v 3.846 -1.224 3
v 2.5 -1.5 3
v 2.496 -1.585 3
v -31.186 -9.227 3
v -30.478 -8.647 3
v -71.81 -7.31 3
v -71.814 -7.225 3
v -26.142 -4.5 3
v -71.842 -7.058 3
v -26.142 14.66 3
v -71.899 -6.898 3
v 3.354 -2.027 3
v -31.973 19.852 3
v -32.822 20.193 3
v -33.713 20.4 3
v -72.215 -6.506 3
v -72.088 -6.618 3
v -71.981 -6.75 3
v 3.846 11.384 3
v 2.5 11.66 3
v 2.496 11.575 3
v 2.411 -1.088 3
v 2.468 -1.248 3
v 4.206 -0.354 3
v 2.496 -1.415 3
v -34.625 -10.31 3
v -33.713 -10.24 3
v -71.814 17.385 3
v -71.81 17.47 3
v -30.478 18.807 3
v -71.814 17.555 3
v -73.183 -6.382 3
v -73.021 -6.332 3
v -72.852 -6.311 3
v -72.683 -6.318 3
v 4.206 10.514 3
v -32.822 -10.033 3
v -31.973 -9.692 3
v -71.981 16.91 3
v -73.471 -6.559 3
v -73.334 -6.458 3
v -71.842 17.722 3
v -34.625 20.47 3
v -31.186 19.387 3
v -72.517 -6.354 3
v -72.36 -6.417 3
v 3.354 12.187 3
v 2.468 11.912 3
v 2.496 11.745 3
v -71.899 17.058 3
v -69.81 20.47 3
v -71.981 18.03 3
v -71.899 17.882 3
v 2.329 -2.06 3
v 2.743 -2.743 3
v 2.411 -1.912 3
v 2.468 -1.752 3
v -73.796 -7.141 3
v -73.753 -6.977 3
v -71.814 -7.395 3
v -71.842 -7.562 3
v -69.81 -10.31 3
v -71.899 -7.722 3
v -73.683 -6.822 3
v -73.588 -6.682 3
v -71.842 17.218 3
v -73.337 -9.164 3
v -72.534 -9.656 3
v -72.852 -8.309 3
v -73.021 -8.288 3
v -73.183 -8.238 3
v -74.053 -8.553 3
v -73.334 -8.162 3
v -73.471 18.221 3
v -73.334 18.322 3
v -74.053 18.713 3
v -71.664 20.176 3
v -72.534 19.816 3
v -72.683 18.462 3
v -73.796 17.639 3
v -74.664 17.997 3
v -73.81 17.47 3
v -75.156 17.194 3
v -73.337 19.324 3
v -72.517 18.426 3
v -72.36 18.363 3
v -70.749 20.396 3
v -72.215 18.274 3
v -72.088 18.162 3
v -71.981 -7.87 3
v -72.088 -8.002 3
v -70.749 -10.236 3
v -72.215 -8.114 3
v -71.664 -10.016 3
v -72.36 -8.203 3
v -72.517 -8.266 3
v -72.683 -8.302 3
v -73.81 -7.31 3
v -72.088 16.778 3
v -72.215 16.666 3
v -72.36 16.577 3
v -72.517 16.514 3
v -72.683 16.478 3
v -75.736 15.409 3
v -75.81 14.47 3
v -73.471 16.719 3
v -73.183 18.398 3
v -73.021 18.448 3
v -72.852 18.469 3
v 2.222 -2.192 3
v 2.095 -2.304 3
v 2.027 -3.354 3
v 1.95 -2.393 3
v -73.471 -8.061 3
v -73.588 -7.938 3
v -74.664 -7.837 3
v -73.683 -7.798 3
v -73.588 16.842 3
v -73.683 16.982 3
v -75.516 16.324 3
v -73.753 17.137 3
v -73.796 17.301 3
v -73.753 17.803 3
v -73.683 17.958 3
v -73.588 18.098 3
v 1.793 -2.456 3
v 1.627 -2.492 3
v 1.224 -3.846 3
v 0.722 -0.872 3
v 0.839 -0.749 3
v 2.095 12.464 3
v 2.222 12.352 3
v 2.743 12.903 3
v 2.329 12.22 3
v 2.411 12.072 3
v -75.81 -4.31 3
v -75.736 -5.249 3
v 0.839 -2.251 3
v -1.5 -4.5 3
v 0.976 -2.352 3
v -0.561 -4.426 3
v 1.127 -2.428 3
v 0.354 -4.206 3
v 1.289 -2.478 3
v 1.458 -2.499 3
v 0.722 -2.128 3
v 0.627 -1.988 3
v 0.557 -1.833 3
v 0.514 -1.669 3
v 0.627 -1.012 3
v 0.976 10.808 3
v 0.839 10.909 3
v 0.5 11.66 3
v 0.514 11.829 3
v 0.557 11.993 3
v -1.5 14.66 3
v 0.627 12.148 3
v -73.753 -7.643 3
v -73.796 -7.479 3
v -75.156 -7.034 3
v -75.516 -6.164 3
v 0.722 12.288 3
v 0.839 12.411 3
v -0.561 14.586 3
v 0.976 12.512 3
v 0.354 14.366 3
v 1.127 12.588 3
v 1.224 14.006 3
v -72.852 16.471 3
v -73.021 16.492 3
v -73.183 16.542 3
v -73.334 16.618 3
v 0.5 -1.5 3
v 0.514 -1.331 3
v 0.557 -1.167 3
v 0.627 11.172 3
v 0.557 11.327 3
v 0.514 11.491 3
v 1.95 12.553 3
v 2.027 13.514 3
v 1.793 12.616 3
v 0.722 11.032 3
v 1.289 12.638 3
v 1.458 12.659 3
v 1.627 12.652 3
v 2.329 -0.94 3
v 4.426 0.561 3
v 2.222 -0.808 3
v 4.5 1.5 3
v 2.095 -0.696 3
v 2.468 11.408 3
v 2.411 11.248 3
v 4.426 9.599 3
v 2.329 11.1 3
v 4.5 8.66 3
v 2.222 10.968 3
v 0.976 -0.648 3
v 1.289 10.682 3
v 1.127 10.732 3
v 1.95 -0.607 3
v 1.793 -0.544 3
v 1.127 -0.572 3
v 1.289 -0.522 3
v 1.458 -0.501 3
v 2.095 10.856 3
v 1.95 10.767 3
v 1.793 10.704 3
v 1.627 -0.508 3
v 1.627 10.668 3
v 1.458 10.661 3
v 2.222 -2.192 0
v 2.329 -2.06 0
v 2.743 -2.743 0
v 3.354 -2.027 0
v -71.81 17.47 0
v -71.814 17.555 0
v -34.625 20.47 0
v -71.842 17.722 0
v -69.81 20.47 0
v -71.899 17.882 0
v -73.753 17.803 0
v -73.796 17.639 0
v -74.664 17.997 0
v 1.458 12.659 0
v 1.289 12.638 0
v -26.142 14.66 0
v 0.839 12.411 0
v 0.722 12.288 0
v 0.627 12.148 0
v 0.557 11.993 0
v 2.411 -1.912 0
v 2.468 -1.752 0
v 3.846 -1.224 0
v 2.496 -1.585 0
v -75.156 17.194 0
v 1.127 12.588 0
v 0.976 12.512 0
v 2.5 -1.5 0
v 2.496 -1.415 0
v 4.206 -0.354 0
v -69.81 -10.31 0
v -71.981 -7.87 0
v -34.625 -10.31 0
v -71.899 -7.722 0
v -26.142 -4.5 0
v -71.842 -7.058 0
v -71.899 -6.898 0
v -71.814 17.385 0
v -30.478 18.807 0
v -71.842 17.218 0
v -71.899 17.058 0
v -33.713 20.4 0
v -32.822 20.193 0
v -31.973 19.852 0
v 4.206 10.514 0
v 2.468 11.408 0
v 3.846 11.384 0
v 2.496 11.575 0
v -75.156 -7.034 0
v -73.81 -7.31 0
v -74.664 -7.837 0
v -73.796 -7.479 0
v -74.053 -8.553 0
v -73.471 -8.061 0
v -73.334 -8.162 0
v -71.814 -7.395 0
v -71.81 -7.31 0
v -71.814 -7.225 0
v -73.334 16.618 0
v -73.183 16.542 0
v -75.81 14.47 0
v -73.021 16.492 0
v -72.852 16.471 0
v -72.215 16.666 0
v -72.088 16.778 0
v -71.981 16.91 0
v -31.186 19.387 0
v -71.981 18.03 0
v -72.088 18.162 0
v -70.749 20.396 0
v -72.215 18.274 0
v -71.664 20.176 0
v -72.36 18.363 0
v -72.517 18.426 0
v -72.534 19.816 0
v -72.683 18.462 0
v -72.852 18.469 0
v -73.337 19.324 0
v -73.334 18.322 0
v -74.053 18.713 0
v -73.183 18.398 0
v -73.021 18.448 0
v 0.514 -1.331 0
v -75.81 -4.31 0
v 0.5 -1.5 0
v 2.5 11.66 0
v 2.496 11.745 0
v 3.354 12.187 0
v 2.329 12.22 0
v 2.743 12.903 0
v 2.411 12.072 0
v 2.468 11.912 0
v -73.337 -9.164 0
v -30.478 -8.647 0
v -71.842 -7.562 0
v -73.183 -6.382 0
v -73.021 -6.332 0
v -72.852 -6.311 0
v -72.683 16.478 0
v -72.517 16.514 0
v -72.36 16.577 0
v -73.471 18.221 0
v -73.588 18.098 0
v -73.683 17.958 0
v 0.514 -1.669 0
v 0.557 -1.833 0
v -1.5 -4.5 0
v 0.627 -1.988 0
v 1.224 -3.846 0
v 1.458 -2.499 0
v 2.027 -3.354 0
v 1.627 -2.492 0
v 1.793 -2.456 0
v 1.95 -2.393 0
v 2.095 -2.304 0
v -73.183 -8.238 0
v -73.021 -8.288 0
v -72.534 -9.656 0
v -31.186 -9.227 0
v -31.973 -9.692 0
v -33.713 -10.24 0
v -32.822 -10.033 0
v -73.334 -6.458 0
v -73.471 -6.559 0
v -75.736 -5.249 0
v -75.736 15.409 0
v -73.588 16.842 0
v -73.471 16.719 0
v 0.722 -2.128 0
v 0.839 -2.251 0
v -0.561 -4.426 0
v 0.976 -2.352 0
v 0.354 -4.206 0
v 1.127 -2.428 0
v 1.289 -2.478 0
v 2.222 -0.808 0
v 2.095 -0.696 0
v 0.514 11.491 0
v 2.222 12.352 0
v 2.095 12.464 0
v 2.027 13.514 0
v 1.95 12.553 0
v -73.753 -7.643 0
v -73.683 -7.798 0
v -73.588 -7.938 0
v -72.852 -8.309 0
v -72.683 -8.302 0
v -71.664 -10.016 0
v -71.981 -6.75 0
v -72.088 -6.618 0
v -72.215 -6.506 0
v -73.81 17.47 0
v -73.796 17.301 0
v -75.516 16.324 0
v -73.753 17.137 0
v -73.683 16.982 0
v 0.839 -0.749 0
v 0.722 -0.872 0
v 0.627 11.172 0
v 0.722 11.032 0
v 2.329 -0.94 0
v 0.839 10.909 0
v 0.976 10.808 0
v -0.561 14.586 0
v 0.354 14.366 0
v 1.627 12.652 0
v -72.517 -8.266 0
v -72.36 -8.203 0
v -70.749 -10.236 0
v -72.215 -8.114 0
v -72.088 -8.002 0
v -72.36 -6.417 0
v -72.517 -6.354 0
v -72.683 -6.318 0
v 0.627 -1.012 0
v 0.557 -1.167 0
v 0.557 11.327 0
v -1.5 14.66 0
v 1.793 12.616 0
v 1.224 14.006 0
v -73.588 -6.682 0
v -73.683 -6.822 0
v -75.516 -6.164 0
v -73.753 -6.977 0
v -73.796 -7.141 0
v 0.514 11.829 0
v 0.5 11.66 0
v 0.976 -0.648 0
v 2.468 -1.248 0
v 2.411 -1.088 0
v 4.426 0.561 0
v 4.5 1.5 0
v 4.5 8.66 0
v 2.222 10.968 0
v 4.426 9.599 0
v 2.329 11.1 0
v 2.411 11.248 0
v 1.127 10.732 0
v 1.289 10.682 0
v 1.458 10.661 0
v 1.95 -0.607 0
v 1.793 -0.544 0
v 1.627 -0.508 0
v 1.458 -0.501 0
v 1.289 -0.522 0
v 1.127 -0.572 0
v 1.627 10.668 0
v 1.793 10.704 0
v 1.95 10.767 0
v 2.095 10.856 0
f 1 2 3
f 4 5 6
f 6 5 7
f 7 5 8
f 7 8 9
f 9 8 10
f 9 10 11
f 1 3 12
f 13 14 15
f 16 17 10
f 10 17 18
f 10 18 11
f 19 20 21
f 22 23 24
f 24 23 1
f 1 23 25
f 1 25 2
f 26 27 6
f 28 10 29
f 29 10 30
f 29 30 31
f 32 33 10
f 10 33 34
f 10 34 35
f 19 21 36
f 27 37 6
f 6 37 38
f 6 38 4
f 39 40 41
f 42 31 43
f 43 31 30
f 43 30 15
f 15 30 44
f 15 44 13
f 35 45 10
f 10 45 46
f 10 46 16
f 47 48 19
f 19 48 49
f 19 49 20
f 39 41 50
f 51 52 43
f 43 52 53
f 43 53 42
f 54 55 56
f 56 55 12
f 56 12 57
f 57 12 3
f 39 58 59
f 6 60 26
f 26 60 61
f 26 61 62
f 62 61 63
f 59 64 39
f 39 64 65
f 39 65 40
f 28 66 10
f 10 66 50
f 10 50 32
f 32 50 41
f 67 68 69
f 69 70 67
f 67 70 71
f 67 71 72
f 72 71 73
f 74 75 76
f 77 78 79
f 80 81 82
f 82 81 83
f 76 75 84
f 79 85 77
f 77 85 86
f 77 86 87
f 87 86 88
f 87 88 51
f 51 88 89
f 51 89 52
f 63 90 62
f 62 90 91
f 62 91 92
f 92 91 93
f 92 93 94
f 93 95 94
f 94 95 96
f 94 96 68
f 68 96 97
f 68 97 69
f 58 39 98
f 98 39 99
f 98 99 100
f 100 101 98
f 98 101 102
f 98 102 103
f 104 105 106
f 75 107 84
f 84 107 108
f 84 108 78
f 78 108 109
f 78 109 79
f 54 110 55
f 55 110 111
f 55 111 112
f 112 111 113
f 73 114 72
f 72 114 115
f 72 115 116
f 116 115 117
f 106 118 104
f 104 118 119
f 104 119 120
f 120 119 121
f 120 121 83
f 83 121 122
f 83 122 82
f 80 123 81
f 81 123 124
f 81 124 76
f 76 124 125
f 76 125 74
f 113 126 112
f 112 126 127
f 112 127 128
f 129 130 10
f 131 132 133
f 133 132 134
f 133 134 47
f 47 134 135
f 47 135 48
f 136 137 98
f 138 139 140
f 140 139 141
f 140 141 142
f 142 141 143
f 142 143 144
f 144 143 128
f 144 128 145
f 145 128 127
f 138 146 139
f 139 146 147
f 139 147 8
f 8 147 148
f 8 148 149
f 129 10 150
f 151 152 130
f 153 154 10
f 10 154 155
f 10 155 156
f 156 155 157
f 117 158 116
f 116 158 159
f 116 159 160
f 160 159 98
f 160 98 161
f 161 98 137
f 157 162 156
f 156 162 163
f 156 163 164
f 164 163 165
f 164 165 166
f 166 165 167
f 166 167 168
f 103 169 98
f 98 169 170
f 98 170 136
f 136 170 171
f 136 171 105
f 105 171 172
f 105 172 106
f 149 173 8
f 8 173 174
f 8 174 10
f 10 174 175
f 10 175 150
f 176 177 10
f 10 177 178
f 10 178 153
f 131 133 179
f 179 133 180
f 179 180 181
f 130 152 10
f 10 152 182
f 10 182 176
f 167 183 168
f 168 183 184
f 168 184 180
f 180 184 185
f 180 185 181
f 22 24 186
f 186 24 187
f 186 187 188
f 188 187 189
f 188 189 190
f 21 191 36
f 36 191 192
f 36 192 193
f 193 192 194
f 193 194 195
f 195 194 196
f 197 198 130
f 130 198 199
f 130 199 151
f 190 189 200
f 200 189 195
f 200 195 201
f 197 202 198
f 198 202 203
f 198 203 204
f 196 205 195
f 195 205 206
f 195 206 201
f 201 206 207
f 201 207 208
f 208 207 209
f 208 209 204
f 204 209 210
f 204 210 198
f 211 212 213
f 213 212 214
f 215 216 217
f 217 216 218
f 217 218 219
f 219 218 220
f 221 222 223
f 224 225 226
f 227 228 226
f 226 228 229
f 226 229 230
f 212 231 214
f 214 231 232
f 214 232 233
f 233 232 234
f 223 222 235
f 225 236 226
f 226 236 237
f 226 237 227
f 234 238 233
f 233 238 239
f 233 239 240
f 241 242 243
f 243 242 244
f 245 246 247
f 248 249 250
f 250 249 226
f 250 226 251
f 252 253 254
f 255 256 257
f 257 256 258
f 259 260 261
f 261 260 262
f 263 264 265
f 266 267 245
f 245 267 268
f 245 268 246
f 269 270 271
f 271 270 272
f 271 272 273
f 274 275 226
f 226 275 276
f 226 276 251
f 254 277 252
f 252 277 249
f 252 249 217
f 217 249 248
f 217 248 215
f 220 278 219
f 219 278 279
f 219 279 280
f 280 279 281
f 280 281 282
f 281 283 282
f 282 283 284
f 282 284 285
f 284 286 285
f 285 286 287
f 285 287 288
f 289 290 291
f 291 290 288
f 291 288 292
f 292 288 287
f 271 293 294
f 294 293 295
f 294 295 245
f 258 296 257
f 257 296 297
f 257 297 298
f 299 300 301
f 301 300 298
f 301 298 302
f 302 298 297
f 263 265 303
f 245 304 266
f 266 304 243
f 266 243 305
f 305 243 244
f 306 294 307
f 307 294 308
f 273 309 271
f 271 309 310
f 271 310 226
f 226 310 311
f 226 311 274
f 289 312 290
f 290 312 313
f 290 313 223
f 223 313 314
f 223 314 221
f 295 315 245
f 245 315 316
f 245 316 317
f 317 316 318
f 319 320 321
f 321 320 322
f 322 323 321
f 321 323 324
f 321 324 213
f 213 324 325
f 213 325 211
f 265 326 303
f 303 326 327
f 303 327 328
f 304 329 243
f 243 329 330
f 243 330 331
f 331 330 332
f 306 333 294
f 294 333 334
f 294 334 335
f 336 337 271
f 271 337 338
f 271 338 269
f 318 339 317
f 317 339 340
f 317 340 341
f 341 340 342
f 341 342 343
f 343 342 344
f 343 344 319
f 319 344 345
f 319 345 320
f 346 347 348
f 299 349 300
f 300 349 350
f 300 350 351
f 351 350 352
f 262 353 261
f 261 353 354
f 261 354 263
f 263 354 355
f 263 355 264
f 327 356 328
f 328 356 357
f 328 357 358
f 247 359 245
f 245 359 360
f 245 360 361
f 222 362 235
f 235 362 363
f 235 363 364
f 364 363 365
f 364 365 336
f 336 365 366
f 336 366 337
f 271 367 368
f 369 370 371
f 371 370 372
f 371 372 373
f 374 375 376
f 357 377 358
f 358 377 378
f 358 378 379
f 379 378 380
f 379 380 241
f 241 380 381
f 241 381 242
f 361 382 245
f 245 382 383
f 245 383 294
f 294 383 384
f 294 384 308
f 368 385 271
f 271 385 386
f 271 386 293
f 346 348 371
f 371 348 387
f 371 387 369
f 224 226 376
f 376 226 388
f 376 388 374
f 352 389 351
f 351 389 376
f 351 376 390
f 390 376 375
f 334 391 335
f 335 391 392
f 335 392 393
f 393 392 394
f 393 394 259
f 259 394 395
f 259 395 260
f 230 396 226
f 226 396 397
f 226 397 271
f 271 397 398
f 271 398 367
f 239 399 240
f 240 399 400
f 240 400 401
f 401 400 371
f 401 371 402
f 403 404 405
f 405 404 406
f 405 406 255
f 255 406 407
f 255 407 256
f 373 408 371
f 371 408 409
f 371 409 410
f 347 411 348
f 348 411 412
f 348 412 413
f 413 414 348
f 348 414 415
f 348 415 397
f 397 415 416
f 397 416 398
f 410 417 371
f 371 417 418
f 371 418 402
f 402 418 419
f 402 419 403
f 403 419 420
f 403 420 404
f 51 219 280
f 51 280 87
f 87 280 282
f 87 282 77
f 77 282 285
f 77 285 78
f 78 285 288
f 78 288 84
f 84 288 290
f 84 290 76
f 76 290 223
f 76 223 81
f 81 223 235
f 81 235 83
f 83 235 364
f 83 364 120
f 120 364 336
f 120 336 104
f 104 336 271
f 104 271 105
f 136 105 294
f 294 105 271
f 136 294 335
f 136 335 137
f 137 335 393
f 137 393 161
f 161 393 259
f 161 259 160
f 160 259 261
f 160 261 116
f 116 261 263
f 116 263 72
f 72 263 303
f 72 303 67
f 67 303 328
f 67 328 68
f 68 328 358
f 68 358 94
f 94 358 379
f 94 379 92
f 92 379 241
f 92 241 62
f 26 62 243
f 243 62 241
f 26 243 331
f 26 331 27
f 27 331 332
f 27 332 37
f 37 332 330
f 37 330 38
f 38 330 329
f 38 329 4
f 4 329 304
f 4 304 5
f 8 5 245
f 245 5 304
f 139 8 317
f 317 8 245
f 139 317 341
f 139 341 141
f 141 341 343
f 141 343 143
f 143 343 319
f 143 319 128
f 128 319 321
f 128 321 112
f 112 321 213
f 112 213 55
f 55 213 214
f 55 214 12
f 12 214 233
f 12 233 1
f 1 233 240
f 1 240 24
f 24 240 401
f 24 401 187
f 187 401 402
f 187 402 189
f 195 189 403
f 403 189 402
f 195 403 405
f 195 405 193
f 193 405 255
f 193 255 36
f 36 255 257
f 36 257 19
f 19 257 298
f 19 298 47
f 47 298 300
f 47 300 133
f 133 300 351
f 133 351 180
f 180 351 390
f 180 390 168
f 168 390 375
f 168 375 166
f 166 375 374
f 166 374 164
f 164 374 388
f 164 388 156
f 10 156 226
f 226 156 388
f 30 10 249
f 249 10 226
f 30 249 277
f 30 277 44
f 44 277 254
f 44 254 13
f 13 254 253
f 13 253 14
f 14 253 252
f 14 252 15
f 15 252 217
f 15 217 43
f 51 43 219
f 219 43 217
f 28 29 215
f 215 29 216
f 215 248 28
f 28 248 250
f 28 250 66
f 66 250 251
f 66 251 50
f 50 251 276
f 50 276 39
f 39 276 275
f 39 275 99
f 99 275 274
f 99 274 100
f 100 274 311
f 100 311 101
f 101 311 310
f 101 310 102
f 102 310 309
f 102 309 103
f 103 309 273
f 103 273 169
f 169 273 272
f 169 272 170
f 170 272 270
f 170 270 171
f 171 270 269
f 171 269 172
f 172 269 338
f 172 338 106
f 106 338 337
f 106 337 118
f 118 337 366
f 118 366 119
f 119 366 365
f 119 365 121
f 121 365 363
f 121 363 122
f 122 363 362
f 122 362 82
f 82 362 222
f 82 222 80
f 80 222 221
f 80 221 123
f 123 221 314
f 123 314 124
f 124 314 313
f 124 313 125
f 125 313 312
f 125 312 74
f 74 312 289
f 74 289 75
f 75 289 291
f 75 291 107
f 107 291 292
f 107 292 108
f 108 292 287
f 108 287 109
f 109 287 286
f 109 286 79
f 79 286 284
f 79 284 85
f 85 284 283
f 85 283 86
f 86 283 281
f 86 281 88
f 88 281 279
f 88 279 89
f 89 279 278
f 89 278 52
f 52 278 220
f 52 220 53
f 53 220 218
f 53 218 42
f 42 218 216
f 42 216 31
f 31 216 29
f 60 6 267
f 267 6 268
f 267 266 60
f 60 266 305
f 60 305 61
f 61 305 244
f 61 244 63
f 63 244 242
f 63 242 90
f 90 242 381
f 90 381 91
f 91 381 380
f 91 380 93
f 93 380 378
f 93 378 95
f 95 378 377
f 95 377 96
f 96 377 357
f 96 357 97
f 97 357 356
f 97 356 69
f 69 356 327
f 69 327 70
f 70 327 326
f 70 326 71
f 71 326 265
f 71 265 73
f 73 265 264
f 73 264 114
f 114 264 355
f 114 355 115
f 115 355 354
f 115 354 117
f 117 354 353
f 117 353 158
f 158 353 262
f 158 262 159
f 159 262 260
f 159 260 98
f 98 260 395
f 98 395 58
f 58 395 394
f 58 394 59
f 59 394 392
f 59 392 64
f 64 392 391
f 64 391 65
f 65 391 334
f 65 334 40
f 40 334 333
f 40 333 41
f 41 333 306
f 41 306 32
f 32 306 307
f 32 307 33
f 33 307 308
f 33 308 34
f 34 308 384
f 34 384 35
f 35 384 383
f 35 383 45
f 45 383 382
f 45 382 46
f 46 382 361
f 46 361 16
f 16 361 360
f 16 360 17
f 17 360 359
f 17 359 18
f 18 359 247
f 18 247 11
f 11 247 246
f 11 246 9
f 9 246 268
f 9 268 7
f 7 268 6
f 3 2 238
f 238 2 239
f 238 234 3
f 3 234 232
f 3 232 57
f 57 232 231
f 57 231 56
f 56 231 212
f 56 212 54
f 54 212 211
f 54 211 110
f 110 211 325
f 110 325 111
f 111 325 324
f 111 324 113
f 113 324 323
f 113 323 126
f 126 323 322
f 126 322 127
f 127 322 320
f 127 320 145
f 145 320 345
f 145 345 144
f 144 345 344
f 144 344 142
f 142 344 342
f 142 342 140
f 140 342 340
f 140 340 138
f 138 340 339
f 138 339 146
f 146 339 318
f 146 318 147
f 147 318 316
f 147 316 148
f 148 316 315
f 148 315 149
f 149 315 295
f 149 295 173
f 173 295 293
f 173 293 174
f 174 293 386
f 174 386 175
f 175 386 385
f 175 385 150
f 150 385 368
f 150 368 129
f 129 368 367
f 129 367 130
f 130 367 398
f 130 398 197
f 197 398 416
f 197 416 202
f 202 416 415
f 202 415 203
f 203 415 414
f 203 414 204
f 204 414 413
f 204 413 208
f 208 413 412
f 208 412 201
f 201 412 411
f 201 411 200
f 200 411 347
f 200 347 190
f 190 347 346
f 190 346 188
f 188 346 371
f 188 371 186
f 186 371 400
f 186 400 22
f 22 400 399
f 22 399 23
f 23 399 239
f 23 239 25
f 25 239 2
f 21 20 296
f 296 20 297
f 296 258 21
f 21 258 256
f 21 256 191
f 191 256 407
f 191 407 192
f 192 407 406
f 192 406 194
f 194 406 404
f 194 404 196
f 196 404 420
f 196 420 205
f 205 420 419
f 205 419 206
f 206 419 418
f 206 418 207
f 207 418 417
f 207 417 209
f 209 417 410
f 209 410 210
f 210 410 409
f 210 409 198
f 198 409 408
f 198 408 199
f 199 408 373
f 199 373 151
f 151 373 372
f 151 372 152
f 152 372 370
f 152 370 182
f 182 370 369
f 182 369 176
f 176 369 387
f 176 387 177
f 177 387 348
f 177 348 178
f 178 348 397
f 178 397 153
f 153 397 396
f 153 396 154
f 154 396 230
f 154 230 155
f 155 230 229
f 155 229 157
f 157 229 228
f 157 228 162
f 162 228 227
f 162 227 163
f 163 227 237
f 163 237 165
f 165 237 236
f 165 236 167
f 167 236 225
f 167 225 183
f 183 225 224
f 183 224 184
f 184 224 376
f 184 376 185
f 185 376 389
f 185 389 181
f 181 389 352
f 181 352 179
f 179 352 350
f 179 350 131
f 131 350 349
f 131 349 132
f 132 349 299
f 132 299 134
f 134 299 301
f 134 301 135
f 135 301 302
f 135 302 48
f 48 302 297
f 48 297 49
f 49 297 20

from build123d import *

# Parameters (mm, degrees)
SKETCH3_R           = 1
BOSS_EXTRUDE2_DEPTH = 3
BOSS_EXTRUDE5_DEPTH = 3


with BuildPart() as part:
    # Sketch3 → Boss-Extrude2 (new body)
    with BuildSketch(Plane.XY):
        with BuildLine():
            Line((-69.81, 20.47), (-34.625063383, 20.47))
            ThreePointArc((-34.625063383, 20.47), (-32.391172348, 20.03863815), (-30.478486436, 18.806576947))
            Line((-30.478486436, 18.806576947), (-26.141909489, 14.66))
            Line((-26.141909489, 14.66), (-1.5, 14.66))
            ThreePointArc((-1.5, 14.66), (2.742640687, 12.902640687), (4.5, 8.66))
            Line((4.5, 8.66), (4.5, 1.5))
            ThreePointArc((4.5, 1.5), (2.742640687, -2.742640687), (-1.5, -4.5))
            Line((-1.5, -4.5), (-26.141909489, -4.5))
            Line((-26.141909489, -4.5), (-30.478486436, -8.646576947))
            ThreePointArc((-30.478486436, -8.646576947), (-32.391172348, -9.87863815), (-34.625063383, -10.31))
            Line((-34.625063383, -10.31), (-69.81, -10.31))
            ThreePointArc((-69.81, -10.31), (-74.052640687, -8.552640687), (-75.81, -4.31))
            Line((-75.81, -4.31), (-75.81, 14.47))
            ThreePointArc((-75.81, 14.47), (-74.052640687, 18.712640687), (-69.81, 20.47))
        make_face()
        with Locations((-72.81, 17.47)):
            Circle(SKETCH3_R, mode=Mode.SUBTRACT)
        with Locations((-72.81, -7.31)):
            Circle(SKETCH3_R, mode=Mode.SUBTRACT)
        with Locations((1.5, -1.5)):
            Circle(SKETCH3_R, mode=Mode.SUBTRACT)
        with Locations((1.5, 11.66)):
            Circle(SKETCH3_R, mode=Mode.SUBTRACT)
        with BuildLine():
            Line((-69.81, 17.47), (-34.625063383, 17.47))
            ThreePointArc((-34.625063383, 17.47), (-33.508117866, 17.254319075), (-32.55177491, 16.638288474))
            Line((-32.55177491, 16.638288474), (-28.215197962, 12.491711526))
            ThreePointArc((-28.215197962, 12.491711526), (-27.258855006, 11.875680925), (-26.141909489, 11.66))
            Line((-26.141909489, 11.66), (-1.5, 11.66))
            ThreePointArc((-1.5, 11.66), (0.621320344, 10.781320344), (1.5, 8.66))
            Line((1.5, 8.66), (1.5, 1.5))
            ThreePointArc((1.5, 1.5), (0.621320344, -0.621320344), (-1.5, -1.5))
            Line((-1.5, -1.5), (-26.141909489, -1.5))
            ThreePointArc((-26.141909489, -1.5), (-27.258855006, -1.715680925), (-28.215197962, -2.331711526))
            Line((-28.215197962, -2.331711526), (-32.55177491, -6.478288474))
            ThreePointArc((-32.55177491, -6.478288474), (-33.508117866, -7.094319075), (-34.625063383, -7.31))
            Line((-34.625063383, -7.31), (-69.81, -7.31))
            ThreePointArc((-69.81, -7.31), (-71.931320344, -6.431320344), (-72.81, -4.31))
            Line((-72.81, -4.31), (-72.81, 14.47))
            ThreePointArc((-72.81, 14.47), (-71.931320344, 16.591320344), (-69.81, 17.47))
        make_face(mode=Mode.SUBTRACT)
    extrude(amount=BOSS_EXTRUDE2_DEPTH)

    # Sketch8 → Boss-Extrude5 (add)
    with BuildSketch(Plane.XY.offset(3)):
        with BuildLine():
            Line((-72.81, 14.47), (-72.81, -4.31))
            ThreePointArc((-72.81, -4.31), (-71.931320344, -6.431320344), (-69.81, -7.31))
            Line((-69.81, -7.31), (-34.625063383, -7.31))
            ThreePointArc((-34.625063383, -7.31), (-33.508117866, -7.094319075), (-32.55177491, -6.478288474))
            Line((-32.55177491, -6.478288474), (-28.215197962, -2.331711526))
            ThreePointArc((-28.215197962, -2.331711526), (-27.258855006, -1.715680925), (-26.141909489, -1.5))
            Line((-26.141909489, -1.5), (-1.5, -1.5))
            ThreePointArc((-1.5, -1.5), (0.621320344, -0.621320344), (1.5, 1.5))
            Line((1.5, 1.5), (1.5, 8.66))
            ThreePointArc((1.5, 8.66), (0.621320344, 10.781320344), (-1.5, 11.66))
            Line((-1.5, 11.66), (-26.141909489, 11.66))
            ThreePointArc((-26.141909489, 11.66), (-27.258855006, 11.875680925), (-28.215197962, 12.491711526))
            Line((-28.215197962, 12.491711526), (-32.55177491, 16.638288474))
            ThreePointArc((-32.55177491, 16.638288474), (-33.508117866, 17.254319075), (-34.625063383, 17.47))
            Line((-34.625063383, 17.47), (-69.81, 17.47))
            ThreePointArc((-69.81, 17.47), (-71.931320344, 16.591320344), (-72.81, 14.47))
        make_face()
    extrude(amount=-BOSS_EXTRUDE5_DEPTH)


solid = part.part
